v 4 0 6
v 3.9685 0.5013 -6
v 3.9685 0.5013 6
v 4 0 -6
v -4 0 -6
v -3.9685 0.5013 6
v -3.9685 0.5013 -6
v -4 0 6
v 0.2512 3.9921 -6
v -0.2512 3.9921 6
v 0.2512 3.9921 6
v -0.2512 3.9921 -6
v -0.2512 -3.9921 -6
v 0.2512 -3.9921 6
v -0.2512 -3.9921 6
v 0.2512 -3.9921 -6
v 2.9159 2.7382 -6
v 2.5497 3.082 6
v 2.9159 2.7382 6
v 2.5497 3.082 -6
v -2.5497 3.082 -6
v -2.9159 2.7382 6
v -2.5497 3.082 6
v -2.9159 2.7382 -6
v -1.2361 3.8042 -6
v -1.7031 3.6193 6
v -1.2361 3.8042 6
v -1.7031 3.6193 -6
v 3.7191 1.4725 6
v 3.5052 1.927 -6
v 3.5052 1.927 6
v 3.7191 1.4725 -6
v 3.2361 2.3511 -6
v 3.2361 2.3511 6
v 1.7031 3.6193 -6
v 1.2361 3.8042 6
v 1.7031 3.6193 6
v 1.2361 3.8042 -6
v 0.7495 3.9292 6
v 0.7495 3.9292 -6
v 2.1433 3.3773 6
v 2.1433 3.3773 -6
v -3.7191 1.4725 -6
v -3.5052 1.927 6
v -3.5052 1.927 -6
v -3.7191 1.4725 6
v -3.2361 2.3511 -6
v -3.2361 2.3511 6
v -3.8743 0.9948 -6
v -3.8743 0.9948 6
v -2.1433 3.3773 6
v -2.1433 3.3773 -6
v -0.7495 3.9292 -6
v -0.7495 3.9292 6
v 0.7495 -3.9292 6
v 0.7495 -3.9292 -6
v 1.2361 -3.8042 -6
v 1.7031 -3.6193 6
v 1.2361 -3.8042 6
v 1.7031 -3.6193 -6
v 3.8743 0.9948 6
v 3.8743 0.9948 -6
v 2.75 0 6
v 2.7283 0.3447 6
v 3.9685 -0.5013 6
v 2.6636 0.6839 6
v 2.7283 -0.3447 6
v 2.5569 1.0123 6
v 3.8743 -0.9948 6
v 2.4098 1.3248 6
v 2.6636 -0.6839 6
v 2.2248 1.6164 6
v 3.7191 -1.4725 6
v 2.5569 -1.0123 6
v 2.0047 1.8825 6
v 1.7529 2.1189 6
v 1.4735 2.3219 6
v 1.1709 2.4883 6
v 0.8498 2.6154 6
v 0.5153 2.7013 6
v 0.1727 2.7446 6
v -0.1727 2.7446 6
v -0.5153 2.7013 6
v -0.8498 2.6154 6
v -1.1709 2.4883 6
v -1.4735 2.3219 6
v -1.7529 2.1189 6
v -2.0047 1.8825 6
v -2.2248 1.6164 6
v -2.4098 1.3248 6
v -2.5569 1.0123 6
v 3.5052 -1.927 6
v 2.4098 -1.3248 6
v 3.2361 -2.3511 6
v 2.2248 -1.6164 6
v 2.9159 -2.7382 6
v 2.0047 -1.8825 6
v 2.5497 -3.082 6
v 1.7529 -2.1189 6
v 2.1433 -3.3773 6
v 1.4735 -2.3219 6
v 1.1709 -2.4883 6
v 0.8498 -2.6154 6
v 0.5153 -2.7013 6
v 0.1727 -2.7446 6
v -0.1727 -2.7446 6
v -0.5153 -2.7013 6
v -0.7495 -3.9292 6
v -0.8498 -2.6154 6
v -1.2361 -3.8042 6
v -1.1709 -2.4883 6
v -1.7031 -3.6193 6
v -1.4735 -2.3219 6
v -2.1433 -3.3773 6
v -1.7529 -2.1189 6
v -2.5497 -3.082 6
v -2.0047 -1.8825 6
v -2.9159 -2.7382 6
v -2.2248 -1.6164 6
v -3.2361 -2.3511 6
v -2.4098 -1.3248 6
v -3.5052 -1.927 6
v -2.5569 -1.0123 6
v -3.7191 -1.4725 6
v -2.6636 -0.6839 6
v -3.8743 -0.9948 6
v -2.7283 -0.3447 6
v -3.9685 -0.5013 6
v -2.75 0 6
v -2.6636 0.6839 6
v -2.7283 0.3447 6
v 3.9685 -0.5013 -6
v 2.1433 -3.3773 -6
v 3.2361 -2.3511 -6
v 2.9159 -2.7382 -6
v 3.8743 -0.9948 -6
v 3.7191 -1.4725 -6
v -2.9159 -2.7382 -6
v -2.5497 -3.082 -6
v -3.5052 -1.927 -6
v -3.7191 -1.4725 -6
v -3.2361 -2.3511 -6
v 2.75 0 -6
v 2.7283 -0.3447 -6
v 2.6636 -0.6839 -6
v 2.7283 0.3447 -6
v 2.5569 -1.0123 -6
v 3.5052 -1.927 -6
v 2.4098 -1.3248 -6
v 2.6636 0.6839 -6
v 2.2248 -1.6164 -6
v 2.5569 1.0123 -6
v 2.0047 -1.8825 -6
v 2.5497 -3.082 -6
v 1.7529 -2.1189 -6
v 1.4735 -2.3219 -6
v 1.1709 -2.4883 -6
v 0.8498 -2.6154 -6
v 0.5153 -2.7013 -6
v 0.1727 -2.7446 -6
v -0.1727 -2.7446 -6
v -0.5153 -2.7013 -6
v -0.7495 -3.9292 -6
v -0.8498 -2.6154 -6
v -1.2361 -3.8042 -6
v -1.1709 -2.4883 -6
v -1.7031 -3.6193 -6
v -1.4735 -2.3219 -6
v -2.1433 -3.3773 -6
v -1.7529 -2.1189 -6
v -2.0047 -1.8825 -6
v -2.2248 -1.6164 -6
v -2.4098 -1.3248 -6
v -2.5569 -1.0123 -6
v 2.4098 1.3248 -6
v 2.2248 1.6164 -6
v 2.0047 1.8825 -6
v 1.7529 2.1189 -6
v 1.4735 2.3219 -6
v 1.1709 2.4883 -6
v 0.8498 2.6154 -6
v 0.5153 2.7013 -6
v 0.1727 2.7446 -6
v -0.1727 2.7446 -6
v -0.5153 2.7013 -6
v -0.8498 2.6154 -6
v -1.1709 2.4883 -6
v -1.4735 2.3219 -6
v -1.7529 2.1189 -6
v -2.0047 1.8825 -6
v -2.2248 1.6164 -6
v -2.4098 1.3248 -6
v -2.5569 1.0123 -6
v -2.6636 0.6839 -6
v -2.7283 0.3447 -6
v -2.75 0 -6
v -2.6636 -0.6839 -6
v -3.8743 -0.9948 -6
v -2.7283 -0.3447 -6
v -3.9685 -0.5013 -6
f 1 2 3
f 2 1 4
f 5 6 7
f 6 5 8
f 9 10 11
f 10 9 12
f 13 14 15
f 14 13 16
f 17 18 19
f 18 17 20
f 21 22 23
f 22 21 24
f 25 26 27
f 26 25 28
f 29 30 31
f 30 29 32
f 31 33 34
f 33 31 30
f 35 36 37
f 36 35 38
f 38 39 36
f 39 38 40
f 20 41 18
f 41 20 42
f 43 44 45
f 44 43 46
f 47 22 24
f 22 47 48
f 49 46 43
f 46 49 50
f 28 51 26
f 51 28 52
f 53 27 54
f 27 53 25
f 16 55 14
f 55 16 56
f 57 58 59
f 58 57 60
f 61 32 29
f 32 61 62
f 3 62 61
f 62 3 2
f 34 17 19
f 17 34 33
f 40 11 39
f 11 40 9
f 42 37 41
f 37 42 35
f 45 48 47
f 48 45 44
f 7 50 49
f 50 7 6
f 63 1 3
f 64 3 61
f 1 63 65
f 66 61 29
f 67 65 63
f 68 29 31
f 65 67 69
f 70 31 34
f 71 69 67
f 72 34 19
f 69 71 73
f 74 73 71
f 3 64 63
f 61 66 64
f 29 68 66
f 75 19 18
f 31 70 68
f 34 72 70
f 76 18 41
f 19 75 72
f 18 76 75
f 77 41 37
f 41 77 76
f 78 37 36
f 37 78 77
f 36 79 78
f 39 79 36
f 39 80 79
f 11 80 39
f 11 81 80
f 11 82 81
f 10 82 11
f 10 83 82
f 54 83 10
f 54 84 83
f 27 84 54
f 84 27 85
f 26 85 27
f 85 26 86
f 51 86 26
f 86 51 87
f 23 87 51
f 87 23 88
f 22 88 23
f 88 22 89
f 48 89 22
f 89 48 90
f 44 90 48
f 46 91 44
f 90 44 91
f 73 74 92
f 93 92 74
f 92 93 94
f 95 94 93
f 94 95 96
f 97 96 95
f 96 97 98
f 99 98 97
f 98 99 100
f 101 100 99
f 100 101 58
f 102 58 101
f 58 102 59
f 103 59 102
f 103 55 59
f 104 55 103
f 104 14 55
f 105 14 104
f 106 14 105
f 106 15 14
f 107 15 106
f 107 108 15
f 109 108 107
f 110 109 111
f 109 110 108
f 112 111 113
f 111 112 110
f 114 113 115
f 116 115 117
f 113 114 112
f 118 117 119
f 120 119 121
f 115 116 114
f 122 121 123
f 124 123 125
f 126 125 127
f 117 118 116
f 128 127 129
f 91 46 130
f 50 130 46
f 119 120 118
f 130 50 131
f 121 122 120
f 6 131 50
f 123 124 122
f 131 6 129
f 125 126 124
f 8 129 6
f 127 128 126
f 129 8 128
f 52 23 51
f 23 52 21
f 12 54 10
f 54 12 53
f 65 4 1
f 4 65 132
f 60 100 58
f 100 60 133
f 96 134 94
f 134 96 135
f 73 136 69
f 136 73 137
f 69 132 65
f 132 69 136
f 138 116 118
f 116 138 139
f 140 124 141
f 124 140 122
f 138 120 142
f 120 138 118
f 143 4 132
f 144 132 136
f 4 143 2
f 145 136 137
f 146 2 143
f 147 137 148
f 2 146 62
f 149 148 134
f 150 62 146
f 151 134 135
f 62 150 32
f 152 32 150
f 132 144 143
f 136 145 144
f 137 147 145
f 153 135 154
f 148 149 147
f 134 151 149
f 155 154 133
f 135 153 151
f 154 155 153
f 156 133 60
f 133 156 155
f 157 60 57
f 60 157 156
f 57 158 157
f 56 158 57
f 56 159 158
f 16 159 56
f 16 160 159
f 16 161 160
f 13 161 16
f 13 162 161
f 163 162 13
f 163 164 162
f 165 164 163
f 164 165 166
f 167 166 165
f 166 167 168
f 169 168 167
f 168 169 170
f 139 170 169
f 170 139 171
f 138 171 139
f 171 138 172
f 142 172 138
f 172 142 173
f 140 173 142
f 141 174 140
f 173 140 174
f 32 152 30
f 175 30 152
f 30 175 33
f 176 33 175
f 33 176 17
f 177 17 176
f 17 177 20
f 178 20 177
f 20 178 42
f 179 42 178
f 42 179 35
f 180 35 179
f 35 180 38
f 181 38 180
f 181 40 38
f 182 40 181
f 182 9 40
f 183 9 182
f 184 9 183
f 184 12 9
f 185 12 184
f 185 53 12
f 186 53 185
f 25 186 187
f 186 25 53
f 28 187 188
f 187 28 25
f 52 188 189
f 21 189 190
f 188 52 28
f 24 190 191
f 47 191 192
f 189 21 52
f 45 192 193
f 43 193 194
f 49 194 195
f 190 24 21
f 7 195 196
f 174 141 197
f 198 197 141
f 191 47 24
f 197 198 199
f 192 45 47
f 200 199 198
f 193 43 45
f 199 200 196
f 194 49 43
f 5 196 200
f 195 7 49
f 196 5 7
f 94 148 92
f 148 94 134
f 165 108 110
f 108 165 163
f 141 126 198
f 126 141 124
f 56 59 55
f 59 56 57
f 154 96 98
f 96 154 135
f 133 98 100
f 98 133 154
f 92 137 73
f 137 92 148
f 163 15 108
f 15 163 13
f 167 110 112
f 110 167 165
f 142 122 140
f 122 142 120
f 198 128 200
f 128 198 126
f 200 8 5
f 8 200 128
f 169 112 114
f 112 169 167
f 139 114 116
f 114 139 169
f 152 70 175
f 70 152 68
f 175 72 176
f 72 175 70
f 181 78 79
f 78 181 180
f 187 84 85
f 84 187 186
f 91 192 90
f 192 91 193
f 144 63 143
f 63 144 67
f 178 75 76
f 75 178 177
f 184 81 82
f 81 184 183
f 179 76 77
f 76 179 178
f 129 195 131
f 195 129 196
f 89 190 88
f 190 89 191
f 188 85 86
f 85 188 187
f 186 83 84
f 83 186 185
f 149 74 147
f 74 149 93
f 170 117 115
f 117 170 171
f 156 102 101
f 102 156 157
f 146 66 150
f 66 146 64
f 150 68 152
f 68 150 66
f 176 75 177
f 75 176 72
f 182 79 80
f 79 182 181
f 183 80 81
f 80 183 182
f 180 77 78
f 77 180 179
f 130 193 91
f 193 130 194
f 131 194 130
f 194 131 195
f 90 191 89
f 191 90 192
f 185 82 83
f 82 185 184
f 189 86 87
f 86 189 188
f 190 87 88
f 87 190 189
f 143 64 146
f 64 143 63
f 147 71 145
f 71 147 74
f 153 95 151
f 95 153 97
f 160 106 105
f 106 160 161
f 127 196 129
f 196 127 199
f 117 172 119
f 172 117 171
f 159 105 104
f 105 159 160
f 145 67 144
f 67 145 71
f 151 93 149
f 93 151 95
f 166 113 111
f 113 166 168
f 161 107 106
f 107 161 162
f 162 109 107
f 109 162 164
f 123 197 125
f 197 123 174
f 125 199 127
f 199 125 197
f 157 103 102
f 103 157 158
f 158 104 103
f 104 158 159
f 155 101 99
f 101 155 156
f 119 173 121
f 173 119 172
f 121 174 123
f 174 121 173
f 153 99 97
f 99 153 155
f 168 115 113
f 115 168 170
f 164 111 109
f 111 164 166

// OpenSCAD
$fn = 50;


difference() {
	union() {
		translate(v = [0, 0, -6.0000000000]) {
			cylinder(h = 12, r = 4.0000000000);
		}
	}
	union() {
		translate(v = [0, 0, -100.0000000000]) {
			cylinder(h = 200, r = 2.7500000000);
		}
	}
}
